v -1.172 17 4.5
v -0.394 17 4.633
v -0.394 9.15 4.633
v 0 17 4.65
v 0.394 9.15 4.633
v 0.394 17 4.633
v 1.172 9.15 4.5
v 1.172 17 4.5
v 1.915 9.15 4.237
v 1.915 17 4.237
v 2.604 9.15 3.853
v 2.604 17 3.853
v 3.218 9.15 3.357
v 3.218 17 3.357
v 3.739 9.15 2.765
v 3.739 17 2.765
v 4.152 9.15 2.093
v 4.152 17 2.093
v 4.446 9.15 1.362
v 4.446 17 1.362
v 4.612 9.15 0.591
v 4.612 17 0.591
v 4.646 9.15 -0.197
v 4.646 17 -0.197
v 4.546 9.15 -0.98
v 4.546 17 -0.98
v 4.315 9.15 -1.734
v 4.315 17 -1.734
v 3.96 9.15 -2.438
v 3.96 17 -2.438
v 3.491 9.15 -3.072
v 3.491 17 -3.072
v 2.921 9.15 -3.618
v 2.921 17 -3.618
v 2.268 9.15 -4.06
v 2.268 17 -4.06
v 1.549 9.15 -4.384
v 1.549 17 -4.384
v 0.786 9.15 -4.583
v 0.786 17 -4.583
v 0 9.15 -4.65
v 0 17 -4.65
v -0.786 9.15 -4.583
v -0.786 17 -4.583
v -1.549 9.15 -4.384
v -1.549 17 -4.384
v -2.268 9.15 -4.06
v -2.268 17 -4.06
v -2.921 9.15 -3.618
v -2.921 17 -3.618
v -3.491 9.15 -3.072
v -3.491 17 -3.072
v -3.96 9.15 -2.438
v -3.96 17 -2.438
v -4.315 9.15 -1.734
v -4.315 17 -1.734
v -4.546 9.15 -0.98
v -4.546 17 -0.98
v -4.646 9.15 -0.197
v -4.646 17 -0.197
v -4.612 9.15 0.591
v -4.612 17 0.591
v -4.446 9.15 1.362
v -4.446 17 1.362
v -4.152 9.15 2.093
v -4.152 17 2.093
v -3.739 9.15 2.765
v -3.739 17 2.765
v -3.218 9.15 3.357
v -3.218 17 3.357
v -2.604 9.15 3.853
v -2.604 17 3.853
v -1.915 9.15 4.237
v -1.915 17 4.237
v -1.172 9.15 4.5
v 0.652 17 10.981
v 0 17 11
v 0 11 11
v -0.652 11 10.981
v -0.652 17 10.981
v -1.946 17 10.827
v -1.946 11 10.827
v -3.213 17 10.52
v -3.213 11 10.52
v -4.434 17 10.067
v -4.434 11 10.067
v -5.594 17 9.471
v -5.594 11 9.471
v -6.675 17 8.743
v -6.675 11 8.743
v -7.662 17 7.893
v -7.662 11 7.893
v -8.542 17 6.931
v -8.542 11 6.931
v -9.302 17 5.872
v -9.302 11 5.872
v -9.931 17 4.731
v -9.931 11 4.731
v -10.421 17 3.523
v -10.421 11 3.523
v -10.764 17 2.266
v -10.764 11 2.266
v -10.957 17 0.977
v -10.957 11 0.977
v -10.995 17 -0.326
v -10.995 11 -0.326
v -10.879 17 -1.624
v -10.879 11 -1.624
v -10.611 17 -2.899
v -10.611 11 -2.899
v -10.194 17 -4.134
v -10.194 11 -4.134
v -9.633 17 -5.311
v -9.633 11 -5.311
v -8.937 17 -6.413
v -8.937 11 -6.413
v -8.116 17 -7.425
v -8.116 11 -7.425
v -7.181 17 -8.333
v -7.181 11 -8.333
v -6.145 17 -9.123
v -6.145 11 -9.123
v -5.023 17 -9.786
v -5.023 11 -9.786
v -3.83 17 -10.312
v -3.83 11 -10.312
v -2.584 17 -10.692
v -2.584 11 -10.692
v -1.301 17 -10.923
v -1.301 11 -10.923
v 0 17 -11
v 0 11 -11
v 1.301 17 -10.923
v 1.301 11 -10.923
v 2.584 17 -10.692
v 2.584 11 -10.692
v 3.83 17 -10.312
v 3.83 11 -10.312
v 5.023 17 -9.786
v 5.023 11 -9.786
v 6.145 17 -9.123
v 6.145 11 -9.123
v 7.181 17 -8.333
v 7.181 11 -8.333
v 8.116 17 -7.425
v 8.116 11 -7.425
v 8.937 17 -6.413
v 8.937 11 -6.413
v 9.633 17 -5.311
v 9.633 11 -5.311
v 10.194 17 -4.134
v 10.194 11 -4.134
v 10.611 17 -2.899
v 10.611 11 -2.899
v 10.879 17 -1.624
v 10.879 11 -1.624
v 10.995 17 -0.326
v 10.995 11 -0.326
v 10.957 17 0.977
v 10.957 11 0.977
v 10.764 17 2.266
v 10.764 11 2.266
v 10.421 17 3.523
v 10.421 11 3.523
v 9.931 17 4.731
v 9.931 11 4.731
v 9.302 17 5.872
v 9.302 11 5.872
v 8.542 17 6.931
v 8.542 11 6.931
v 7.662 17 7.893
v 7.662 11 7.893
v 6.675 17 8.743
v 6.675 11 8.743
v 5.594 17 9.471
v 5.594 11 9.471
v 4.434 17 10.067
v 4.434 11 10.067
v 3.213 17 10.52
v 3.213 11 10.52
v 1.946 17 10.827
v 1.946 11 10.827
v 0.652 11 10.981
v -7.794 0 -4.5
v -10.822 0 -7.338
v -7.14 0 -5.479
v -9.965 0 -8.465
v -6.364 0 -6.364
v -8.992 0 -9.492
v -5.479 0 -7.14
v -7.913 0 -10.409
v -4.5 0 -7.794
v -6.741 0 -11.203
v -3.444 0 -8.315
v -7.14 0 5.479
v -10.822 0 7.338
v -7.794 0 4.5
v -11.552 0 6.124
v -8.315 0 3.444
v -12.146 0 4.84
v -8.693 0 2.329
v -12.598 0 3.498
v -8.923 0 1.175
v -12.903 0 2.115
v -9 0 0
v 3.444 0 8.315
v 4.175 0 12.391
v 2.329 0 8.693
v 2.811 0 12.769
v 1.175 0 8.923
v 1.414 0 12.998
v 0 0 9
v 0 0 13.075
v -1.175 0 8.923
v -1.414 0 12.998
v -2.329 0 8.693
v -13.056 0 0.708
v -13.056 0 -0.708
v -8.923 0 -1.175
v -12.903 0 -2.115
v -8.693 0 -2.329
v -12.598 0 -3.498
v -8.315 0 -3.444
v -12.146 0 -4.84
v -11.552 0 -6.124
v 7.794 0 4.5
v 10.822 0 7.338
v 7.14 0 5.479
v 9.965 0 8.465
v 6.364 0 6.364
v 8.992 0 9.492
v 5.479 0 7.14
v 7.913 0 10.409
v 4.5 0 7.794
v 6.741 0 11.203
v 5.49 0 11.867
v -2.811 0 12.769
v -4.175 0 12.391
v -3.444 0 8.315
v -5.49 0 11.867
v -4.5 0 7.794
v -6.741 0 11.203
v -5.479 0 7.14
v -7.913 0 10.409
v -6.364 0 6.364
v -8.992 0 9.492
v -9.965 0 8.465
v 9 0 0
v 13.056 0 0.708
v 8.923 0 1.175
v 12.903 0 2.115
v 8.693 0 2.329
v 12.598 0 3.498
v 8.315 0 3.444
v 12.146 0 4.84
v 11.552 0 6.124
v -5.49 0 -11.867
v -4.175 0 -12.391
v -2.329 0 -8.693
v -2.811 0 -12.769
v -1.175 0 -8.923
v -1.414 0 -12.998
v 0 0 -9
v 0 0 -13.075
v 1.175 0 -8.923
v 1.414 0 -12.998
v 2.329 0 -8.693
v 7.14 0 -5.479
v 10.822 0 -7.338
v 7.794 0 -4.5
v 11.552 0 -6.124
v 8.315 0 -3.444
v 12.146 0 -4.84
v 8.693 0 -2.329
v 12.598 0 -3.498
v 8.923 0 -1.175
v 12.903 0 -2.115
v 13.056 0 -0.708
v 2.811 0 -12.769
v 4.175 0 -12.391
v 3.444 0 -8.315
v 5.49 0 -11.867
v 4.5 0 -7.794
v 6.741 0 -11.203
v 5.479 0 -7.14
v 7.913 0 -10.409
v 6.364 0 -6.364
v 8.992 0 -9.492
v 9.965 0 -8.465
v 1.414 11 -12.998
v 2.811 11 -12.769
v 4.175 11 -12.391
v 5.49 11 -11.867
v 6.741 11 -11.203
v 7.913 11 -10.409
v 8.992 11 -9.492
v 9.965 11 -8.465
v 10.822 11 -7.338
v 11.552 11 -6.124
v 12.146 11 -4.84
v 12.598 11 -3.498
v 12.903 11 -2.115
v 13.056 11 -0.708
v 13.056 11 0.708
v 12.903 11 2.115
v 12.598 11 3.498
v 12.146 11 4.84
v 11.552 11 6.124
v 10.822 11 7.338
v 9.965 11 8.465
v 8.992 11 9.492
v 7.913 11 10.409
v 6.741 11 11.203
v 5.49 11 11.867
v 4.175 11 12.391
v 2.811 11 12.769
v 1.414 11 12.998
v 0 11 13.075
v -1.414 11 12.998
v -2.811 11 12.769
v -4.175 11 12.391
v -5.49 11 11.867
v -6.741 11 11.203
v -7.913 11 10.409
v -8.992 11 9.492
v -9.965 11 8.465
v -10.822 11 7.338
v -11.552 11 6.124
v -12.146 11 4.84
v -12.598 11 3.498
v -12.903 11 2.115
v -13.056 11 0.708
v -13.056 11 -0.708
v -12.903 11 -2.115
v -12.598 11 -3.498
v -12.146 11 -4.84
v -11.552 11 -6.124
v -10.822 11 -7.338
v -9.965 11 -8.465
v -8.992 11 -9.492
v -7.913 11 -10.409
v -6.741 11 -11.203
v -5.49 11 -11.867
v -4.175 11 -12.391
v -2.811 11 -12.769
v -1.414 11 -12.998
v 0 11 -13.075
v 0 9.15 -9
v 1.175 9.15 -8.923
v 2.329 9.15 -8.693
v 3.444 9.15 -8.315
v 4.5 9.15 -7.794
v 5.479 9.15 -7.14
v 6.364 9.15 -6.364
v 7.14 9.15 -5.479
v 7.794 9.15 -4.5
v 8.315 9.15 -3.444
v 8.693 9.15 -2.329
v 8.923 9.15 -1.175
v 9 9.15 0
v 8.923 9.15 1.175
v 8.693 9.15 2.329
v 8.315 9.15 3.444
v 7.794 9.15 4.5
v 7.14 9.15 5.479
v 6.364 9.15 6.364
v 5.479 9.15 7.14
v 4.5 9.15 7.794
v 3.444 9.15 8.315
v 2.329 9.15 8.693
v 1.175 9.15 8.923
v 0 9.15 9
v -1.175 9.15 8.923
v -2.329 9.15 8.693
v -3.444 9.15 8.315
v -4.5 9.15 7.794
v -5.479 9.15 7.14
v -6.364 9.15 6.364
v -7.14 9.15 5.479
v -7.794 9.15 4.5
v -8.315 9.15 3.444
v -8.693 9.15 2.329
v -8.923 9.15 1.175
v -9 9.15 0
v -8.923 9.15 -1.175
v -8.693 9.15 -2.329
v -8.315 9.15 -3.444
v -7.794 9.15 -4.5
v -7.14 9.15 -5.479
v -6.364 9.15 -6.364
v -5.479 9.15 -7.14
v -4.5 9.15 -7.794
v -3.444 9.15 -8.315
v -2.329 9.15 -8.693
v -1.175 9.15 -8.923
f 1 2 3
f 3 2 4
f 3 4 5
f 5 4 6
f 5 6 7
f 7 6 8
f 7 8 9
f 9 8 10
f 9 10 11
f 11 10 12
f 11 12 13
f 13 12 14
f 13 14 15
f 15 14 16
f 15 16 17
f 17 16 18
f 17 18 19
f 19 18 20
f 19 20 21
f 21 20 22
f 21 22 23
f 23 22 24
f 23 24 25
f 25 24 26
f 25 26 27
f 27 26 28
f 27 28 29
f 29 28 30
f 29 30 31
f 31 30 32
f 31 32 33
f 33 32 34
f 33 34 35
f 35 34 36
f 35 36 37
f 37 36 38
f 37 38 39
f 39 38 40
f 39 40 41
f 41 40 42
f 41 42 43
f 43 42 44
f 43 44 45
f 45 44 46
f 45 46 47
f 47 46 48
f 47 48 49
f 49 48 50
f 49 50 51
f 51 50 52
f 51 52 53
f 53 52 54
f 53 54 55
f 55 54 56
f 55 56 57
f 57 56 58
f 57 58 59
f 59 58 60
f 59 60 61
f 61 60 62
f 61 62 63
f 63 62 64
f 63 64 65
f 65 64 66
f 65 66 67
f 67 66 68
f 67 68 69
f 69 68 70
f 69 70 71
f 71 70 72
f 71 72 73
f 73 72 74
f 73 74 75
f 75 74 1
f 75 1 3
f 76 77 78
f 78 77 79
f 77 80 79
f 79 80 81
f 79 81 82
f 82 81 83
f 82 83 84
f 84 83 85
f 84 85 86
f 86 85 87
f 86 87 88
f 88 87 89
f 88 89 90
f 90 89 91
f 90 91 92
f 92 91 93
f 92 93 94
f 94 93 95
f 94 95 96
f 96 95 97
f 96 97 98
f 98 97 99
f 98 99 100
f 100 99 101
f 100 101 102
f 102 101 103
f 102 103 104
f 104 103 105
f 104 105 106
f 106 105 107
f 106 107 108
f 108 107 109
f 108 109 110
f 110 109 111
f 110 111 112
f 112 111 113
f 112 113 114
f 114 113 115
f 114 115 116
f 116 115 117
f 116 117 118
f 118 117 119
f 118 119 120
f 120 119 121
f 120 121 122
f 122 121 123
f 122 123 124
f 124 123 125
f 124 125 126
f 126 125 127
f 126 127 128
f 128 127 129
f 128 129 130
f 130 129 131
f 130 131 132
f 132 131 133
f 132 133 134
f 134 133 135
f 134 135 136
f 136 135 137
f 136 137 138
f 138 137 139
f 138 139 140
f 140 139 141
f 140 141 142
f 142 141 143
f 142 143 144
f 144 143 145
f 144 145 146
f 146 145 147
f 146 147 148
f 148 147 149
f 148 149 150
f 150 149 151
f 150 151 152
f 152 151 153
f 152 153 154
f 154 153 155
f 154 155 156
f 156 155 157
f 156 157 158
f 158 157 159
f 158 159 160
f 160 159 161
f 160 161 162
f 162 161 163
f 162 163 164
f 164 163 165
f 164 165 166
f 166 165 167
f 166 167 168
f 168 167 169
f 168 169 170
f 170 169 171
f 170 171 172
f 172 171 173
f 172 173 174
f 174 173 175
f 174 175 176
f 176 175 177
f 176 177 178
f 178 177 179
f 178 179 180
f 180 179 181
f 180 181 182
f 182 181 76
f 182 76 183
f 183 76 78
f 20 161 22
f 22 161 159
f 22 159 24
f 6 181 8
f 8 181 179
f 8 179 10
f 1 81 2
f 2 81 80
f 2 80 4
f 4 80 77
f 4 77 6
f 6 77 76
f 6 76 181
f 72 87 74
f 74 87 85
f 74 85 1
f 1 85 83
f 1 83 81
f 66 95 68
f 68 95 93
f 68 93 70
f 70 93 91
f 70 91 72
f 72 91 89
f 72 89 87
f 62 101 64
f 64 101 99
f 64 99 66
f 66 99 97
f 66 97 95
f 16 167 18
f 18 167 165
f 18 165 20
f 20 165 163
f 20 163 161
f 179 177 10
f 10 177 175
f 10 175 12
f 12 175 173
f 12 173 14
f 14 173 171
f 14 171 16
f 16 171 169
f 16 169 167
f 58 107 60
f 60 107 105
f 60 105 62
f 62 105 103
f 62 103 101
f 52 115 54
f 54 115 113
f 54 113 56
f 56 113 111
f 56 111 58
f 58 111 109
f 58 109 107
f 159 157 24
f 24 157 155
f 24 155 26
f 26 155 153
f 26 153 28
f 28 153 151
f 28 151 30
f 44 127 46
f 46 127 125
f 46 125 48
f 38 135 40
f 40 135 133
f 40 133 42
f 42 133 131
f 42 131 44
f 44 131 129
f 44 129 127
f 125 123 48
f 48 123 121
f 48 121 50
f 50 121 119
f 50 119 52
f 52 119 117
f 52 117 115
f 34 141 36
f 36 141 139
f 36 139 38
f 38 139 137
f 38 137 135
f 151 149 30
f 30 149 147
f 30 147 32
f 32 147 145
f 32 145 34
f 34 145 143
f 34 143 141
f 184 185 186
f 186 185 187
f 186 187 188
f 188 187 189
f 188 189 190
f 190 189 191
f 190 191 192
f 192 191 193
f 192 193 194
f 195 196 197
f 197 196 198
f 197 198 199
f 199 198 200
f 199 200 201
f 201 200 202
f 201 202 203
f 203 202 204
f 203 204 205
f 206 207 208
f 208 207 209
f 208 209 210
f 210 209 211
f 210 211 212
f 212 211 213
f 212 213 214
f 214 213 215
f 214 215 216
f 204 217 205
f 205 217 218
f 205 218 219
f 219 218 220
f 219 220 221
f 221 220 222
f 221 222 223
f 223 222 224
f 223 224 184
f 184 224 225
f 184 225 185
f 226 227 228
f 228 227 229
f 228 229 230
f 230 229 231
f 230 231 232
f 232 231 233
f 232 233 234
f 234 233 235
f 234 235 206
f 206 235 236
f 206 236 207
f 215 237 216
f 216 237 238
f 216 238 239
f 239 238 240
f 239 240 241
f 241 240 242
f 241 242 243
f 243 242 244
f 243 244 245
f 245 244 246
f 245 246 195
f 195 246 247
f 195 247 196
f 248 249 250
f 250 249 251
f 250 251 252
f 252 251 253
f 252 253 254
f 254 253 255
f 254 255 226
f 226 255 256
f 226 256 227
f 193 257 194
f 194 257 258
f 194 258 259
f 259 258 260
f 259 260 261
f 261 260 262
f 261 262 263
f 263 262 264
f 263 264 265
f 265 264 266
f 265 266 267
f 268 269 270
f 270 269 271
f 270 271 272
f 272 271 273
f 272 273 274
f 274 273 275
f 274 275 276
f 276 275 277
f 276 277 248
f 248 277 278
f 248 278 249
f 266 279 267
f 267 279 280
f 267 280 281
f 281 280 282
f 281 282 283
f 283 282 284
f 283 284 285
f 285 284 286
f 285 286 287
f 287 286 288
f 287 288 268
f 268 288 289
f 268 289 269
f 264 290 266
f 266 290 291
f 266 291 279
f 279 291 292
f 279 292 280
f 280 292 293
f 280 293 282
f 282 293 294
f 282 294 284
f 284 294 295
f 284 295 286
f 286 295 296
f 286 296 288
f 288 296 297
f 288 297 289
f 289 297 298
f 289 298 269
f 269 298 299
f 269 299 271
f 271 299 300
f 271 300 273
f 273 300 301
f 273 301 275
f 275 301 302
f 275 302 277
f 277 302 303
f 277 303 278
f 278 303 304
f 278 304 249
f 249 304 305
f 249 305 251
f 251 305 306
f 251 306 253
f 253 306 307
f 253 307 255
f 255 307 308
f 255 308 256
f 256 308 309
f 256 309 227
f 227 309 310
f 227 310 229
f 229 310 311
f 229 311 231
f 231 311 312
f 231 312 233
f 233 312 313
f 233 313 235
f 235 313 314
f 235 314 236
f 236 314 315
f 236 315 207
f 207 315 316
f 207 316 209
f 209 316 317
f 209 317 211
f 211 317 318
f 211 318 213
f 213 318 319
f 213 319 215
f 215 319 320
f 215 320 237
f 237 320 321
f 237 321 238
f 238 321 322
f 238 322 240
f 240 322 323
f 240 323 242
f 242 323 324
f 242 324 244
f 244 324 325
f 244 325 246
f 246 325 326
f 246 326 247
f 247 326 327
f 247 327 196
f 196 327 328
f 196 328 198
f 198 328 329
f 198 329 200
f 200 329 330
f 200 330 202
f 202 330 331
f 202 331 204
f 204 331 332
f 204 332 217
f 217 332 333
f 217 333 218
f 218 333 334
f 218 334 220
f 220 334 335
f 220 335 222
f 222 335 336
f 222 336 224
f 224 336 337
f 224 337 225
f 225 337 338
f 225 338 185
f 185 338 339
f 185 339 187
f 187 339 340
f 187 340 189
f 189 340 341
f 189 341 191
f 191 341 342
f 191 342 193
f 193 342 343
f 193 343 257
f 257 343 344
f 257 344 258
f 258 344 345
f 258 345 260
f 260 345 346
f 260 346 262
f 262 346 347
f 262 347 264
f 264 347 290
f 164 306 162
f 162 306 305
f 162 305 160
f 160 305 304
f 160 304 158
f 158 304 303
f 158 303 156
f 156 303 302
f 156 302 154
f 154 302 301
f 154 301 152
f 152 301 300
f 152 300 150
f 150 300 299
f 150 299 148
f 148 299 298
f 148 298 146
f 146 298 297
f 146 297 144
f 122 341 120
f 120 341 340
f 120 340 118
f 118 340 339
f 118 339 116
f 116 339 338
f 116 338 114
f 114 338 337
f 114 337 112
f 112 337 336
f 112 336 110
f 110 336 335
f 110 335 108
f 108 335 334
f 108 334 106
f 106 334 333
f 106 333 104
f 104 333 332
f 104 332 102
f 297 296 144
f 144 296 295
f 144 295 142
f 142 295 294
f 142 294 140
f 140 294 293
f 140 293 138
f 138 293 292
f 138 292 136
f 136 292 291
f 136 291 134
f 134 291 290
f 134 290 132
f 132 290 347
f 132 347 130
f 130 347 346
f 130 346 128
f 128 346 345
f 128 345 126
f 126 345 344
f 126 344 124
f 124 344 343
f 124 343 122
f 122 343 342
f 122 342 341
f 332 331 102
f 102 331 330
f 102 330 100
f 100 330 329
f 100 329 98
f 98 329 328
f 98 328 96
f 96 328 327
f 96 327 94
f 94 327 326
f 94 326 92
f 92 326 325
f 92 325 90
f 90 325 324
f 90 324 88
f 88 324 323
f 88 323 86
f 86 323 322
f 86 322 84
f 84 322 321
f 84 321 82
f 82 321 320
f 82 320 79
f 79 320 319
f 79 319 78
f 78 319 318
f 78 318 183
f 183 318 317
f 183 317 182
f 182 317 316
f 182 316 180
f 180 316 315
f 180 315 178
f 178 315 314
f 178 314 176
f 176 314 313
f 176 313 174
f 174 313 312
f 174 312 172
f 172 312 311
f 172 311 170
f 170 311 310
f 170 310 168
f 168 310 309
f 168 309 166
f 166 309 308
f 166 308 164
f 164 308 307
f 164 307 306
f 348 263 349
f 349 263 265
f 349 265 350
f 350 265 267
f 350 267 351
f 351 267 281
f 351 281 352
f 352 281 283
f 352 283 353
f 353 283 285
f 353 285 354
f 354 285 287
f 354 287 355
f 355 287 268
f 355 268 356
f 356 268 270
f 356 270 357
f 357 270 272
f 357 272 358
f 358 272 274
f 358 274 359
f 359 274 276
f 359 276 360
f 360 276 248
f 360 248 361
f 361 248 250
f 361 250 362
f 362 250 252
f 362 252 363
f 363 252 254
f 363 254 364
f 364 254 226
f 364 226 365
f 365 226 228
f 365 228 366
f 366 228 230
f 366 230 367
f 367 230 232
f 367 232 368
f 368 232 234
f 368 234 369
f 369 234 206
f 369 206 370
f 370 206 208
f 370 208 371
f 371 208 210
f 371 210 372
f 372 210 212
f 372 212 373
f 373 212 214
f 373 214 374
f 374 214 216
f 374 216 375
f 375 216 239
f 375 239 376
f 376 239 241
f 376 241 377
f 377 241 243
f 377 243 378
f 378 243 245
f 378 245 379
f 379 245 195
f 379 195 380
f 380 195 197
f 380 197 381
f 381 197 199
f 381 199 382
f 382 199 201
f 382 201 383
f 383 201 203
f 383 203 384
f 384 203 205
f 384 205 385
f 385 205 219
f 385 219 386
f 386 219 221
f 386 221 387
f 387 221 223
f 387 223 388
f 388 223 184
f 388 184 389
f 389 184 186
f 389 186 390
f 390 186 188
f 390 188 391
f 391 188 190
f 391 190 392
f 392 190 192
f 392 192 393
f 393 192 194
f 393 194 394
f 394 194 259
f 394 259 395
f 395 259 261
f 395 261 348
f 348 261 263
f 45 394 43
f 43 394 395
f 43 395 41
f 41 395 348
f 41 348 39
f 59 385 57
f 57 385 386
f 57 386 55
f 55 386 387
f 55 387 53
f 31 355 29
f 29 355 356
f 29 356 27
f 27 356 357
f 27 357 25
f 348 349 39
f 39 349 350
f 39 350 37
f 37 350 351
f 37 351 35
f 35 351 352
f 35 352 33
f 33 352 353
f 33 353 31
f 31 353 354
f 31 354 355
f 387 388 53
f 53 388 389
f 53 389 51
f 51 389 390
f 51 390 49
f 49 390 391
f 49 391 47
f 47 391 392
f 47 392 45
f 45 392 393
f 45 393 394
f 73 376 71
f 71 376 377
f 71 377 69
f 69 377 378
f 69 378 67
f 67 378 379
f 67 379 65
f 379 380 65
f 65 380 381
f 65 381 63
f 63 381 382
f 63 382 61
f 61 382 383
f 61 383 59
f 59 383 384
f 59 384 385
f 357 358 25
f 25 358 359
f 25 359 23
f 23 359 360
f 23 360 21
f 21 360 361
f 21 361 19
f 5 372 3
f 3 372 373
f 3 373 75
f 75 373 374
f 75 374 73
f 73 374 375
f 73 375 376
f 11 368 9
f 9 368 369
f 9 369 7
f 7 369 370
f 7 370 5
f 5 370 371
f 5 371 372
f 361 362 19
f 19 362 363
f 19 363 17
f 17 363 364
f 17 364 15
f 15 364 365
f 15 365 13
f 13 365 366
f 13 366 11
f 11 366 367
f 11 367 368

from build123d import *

# Parameters (mm, degrees)
SKETCH1_R           = 11
SKETCH1_R_2         = 4.65
BOSS_EXTRUDE1_DEPTH = 17
SKETCH1_5_R         = 13.075
SKETCH1_5_R_2       = 11
BOSS_EXTRUDE2_DEPTH = 11
SKETCH2_R           = 9
CUT_EXTRUDE1_DEPTH  = 9.15


with BuildPart() as part:
    # Sketch1 → Boss-Extrude1 (new body)
    with BuildSketch(Plane(origin=(0, 0, 0), x_dir=(1, 0, 0), z_dir=(0, 1, 0))):
        Circle(SKETCH1_R)
        Circle(SKETCH1_R_2, mode=Mode.SUBTRACT)
    extrude(amount=BOSS_EXTRUDE1_DEPTH)

    # Sketch1<5> → Boss-Extrude2 (add)
    with BuildSketch(Plane(origin=(0, 0, 0), x_dir=(1, 0, 0), z_dir=(0, 1, 0))):
        Circle(SKETCH1_5_R)
        Circle(SKETCH1_5_R_2, mode=Mode.SUBTRACT)
    extrude(amount=BOSS_EXTRUDE2_DEPTH)

    # Sketch2 → Cut-Extrude1 (cut)
    with BuildSketch(Plane.XZ):
        Circle(SKETCH2_R)
    extrude(amount=-CUT_EXTRUDE1_DEPTH, mode=Mode.SUBTRACT)


solid = part.part
